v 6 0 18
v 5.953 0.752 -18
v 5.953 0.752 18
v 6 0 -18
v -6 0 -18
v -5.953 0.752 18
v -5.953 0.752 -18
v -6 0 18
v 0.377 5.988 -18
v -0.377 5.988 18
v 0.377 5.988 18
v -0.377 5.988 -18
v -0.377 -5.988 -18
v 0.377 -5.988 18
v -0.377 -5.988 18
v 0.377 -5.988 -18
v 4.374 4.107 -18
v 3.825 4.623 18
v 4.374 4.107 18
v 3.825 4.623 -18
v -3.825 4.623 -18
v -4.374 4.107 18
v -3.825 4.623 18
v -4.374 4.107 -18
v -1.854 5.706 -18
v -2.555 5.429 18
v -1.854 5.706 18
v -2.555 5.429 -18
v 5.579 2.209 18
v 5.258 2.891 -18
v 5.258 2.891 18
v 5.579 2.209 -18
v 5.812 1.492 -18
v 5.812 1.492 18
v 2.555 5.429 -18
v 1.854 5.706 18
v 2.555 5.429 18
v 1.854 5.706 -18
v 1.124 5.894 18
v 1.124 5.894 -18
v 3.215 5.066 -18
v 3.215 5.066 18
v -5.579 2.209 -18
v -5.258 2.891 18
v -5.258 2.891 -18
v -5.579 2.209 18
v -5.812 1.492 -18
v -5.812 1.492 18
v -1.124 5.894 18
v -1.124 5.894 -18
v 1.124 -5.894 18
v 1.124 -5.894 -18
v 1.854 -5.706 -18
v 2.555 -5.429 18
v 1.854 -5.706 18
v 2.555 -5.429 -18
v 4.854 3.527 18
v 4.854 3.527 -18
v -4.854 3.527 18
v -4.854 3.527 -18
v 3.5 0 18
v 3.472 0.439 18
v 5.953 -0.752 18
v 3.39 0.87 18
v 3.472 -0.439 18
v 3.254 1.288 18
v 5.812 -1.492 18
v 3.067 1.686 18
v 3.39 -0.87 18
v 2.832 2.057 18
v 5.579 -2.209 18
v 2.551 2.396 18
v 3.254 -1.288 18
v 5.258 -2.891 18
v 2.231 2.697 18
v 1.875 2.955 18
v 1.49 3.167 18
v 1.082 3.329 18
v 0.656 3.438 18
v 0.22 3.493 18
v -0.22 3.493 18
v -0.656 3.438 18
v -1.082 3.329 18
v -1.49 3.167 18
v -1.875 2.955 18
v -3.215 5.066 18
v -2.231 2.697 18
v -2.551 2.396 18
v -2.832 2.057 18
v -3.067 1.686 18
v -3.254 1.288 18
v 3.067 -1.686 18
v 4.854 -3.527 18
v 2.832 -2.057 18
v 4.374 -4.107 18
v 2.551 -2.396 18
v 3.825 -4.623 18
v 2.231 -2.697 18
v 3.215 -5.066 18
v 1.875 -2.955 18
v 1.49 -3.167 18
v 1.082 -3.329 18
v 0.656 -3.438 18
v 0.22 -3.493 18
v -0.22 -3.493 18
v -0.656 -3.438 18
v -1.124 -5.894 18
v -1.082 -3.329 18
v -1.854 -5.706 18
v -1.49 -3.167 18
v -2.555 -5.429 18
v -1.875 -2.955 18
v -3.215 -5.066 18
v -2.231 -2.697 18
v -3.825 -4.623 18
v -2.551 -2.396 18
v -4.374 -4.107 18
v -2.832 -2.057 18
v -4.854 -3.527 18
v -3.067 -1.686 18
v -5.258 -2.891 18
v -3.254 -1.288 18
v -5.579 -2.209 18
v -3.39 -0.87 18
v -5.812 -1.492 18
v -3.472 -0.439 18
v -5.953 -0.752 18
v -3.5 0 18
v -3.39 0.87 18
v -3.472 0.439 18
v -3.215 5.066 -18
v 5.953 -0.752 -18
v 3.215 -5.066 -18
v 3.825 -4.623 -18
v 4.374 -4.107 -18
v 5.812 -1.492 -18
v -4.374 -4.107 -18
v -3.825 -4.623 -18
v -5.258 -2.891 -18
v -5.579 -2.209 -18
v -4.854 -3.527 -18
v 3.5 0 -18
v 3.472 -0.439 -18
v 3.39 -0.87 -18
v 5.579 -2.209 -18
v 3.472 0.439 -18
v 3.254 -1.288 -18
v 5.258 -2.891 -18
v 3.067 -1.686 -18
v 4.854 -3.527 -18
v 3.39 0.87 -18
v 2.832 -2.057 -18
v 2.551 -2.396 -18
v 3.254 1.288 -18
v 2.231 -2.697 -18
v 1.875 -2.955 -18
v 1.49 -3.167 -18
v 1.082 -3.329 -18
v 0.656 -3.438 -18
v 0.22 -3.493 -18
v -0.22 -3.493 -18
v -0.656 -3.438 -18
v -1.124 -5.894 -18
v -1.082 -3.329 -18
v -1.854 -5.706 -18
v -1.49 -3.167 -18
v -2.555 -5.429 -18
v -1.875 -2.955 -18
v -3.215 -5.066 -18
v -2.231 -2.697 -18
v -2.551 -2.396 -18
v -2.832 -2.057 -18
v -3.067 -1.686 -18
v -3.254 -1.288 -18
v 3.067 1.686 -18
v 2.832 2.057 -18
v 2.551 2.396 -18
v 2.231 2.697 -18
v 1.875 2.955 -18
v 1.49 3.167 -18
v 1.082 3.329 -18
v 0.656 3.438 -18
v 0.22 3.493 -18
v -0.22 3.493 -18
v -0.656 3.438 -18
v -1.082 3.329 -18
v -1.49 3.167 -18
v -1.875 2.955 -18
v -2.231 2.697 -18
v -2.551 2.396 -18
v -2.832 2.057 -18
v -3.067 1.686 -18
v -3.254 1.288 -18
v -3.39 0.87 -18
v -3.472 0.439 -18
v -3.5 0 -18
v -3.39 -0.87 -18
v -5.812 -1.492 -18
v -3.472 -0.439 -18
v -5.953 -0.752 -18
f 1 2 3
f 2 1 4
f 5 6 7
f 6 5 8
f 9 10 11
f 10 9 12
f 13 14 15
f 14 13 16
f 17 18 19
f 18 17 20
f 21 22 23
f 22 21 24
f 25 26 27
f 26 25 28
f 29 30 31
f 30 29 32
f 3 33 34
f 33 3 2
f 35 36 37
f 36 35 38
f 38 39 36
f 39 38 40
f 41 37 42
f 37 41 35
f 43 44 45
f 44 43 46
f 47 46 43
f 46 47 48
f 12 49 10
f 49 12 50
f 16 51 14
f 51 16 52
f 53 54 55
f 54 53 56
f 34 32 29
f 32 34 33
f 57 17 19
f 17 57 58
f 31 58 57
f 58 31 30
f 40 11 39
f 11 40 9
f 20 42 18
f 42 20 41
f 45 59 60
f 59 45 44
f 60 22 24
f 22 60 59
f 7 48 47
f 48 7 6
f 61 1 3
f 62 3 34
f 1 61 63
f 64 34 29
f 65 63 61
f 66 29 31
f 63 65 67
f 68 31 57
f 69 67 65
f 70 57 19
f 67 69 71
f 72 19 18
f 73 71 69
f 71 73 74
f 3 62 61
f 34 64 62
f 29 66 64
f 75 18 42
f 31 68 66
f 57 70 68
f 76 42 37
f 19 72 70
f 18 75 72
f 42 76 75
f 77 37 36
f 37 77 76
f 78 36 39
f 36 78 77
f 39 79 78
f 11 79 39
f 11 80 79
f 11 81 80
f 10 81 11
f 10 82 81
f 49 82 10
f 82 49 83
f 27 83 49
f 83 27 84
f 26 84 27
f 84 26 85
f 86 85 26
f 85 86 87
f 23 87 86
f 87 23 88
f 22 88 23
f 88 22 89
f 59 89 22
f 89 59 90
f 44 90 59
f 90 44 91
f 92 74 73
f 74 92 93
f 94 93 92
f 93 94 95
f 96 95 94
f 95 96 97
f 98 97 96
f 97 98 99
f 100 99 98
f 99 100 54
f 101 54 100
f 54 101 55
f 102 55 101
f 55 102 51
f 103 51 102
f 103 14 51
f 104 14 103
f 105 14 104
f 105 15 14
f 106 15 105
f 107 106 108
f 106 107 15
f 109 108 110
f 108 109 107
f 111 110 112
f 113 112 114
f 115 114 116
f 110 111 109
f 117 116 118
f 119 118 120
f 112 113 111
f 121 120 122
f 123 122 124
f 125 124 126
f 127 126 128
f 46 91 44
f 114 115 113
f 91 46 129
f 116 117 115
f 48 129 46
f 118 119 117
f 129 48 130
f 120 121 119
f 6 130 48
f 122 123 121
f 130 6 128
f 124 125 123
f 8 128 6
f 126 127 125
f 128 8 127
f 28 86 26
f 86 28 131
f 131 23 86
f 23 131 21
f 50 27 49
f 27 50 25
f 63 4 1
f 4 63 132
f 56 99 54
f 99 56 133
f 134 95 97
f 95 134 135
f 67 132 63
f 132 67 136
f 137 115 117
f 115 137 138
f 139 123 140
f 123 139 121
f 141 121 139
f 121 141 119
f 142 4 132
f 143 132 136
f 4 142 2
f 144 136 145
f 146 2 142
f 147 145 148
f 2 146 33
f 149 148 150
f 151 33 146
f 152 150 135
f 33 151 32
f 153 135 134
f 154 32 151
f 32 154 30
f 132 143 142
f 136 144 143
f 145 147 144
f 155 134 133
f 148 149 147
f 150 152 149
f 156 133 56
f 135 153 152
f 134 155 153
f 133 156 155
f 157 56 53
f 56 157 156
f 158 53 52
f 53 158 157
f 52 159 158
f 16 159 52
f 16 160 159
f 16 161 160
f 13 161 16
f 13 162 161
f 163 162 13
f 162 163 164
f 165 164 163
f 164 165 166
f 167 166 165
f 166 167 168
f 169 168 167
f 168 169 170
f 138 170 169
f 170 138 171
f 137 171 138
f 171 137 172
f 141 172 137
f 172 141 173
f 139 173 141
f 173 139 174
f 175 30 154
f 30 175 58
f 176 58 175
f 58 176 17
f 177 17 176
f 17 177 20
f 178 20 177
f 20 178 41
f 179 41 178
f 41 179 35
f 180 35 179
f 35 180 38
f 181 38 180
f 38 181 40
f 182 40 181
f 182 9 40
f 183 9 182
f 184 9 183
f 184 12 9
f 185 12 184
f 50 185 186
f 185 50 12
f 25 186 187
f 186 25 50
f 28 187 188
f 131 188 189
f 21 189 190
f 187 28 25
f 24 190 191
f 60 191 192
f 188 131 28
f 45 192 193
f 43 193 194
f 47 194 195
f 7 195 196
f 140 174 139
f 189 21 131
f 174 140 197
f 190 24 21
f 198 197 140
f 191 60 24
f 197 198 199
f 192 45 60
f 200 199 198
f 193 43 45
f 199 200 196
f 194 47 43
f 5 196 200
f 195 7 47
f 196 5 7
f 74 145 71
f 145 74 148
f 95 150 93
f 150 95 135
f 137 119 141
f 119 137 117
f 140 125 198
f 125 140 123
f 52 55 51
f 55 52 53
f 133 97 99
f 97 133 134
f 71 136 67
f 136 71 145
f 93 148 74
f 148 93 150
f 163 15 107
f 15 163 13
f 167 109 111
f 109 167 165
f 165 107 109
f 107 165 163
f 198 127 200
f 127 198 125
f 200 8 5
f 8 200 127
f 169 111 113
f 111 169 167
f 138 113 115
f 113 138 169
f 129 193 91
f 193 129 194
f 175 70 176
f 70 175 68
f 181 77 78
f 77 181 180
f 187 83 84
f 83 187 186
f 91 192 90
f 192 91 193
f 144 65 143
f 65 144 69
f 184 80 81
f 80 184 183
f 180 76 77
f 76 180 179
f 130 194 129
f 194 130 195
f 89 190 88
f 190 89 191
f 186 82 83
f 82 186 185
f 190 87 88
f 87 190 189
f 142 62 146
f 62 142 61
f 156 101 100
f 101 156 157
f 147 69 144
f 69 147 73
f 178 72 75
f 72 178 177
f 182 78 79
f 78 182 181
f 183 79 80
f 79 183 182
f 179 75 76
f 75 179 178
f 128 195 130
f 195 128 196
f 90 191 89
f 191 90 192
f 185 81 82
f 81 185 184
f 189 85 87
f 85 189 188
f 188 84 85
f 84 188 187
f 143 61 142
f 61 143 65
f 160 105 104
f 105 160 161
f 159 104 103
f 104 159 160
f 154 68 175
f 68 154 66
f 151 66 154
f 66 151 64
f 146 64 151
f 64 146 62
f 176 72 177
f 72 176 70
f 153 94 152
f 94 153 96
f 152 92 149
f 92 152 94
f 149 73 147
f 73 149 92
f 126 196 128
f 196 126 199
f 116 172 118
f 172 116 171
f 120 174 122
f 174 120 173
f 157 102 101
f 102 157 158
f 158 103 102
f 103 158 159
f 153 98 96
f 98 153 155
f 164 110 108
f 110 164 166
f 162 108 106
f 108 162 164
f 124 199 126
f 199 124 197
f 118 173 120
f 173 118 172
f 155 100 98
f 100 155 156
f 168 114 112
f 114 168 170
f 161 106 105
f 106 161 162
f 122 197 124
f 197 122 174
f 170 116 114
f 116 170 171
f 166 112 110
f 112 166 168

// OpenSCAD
$fn = 50;


difference() {
	union() {
		translate(v = [0, 0, -18.0000000000]) {
			cylinder(h = 36, r = 6.0000000000);
		}
	}
	union() {
		translate(v = [0, 0, -100.0000000000]) {
			cylinder(h = 200, r = 3.5000000000);
		}
	}
}
